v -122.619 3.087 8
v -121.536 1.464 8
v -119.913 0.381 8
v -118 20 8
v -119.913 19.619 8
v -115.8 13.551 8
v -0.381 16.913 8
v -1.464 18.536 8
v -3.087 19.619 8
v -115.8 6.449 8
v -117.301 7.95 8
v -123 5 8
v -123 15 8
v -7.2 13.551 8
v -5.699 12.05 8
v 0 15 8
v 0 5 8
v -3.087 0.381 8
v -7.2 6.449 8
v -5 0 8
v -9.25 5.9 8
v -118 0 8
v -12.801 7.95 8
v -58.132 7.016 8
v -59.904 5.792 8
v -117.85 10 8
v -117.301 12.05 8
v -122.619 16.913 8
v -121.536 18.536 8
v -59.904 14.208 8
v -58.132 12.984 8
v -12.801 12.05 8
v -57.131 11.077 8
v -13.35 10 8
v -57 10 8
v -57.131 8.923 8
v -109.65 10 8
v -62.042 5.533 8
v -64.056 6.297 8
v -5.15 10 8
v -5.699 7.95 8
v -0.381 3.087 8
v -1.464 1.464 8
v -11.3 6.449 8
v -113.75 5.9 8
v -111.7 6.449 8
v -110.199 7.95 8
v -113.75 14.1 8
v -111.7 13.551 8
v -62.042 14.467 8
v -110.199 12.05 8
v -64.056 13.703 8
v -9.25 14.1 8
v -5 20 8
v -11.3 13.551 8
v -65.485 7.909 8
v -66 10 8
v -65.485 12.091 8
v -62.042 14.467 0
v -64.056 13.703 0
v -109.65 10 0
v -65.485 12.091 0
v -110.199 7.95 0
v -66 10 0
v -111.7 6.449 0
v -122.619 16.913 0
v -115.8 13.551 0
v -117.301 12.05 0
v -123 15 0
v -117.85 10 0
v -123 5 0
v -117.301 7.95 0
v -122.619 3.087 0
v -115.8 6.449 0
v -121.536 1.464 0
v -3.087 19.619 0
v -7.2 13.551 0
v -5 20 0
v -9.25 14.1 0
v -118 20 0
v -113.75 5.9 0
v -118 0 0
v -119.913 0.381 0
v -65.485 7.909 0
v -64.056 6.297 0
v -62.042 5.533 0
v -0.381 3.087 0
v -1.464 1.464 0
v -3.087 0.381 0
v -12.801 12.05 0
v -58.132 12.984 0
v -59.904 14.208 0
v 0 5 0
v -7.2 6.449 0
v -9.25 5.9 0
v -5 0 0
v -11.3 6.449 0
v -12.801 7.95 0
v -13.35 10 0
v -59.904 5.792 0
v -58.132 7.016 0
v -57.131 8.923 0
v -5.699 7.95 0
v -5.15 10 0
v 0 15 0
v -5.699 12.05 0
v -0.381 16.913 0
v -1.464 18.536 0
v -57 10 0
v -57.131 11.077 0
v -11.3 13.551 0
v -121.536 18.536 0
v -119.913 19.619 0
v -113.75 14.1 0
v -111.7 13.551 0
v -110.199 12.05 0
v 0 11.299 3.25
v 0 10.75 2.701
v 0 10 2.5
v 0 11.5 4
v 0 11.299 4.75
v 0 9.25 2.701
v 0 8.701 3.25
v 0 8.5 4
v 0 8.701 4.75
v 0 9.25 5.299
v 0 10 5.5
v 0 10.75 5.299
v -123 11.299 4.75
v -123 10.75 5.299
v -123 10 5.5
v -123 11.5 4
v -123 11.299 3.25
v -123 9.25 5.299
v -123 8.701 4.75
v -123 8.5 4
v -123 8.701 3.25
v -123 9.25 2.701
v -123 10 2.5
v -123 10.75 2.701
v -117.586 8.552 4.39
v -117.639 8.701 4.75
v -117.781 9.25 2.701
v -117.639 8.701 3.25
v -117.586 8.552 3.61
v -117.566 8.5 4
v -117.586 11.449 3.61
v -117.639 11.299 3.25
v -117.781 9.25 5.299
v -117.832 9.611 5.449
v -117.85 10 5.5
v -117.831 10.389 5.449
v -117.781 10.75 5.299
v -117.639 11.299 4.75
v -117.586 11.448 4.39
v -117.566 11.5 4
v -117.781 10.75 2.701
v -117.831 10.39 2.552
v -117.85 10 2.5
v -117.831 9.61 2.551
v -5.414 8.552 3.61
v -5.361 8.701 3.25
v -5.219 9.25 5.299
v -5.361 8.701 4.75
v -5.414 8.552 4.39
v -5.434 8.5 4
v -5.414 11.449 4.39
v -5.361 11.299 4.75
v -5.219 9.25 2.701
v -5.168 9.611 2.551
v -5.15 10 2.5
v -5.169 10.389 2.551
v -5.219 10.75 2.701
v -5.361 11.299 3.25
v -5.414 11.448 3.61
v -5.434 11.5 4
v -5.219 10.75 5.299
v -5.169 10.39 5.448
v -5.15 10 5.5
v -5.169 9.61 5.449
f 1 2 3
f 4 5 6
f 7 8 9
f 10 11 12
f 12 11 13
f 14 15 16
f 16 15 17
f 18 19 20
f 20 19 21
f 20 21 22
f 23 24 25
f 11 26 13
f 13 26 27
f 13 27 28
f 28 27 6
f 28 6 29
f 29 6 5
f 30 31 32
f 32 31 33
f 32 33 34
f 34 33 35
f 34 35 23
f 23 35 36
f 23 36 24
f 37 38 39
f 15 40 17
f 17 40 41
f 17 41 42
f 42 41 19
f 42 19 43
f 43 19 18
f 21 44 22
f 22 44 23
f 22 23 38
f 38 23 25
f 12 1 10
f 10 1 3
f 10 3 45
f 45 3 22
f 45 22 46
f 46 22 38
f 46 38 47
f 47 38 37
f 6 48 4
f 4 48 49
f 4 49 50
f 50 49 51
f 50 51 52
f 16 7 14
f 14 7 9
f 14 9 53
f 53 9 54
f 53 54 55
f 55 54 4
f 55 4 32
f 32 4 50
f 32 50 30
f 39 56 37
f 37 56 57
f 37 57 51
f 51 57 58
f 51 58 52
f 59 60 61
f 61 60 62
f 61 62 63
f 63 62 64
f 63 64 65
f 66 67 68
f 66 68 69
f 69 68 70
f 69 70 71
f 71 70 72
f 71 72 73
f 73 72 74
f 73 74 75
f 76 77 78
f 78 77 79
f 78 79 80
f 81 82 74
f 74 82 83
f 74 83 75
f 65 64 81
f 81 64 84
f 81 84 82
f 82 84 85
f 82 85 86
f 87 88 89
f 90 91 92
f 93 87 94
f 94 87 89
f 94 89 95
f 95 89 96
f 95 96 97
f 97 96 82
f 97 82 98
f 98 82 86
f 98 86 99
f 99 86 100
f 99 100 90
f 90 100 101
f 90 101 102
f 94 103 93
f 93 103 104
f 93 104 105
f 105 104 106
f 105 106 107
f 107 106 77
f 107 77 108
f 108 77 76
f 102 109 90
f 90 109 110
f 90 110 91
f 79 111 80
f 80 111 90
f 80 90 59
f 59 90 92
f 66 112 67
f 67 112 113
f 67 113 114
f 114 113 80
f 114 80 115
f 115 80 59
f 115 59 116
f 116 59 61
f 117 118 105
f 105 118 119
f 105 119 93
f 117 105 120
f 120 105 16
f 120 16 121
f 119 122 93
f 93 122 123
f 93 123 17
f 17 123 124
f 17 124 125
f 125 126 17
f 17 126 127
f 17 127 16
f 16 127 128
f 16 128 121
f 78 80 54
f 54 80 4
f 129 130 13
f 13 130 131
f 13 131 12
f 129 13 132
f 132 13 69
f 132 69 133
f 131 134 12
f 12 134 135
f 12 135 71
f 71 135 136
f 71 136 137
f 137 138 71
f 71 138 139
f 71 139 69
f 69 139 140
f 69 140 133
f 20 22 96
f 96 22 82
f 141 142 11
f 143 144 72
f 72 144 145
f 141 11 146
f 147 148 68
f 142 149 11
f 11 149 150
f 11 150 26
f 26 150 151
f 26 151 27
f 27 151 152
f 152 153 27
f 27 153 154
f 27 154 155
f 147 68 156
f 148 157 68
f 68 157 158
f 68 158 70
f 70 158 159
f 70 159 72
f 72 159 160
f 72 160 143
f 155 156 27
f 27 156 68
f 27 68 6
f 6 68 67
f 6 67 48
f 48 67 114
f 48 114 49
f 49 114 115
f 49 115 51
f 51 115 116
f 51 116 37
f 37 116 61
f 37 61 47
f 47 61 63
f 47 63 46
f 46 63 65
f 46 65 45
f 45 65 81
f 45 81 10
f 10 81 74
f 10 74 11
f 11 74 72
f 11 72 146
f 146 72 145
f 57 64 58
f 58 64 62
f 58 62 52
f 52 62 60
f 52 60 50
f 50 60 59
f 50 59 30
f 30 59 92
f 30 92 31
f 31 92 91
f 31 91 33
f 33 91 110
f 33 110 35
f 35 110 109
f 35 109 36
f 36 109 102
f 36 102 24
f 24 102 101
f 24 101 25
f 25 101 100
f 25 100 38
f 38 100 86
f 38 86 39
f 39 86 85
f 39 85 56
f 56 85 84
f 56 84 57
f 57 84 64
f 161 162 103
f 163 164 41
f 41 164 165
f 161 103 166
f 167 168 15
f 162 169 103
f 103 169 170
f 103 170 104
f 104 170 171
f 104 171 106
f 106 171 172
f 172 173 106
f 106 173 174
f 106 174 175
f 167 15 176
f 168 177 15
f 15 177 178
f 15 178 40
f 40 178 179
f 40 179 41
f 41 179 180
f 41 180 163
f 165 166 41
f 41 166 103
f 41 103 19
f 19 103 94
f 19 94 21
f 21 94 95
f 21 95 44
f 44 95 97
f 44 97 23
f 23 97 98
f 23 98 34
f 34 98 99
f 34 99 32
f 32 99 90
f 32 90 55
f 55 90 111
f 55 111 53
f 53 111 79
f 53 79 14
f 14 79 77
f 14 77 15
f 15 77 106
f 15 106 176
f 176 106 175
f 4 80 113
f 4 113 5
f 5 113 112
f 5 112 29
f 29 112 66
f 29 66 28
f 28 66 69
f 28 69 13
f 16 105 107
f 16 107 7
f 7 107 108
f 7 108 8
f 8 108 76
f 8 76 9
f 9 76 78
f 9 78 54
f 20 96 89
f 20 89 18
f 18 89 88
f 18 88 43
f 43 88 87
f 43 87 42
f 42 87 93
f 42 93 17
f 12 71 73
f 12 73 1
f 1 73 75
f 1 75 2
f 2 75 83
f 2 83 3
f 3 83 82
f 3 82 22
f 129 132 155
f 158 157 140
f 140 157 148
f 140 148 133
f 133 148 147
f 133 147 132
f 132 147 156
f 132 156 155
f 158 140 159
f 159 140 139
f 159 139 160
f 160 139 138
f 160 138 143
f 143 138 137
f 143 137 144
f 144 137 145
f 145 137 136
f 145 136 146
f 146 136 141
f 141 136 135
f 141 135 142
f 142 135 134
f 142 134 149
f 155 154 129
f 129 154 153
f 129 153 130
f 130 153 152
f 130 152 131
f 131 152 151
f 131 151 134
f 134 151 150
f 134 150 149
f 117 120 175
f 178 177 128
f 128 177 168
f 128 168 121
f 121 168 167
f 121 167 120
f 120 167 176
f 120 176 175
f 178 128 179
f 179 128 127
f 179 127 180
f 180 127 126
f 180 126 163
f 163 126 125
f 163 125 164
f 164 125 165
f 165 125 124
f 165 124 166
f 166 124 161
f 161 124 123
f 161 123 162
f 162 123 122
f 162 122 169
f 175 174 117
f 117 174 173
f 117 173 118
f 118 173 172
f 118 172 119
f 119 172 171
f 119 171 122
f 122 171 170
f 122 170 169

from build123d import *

# Parameters (mm, degrees)
SKETCH1_W               = 123
SKETCH1_H               = 20
SKETCH1_R               = 4.1
SKETCH1_R_2             = 4.5
BOSS_EXTRUDE1_DEPTH     = 8
FILLET1_R               = 5
FILLET2_R               = 5
CUT_EXTRUDE1_REACH      = 126.872
CUT_EXTRUDE1_END_RADIUS = 4.1
SKETCH2_R               = 1.5
CUT_EXTRUDE2_REACH      = 126.872
CUT_EXTRUDE2_END_RADIUS = 4.1
SKETCH3_R               = 1.5


with BuildPart() as part:
    # Sketch1 → Boss-Extrude1 (new body)
    with BuildSketch(Plane.XY):
        with Locations((-61.5, 10)):
            Rectangle(SKETCH1_W, SKETCH1_H)
        with Locations((-113.75, 10)):
            Circle(SKETCH1_R, mode=Mode.SUBTRACT)
        with Locations((-61.5, 10)):
            Circle(SKETCH1_R_2, mode=Mode.SUBTRACT)
        with Locations((-9.25, 10)):
            Circle(SKETCH1_R, mode=Mode.SUBTRACT)
    extrude(amount=BOSS_EXTRUDE1_DEPTH)

    # Fillet1
    fillet1_edges = [part.edges().sort_by_distance(p)[0] for p in [
        (-123, 20, 4),
    ]]
    fillet(fillet1_edges, radius=FILLET1_R)

    # Fillet2
    fillet2_edges = [part.edges().sort_by_distance(p)[0] for p in [
        (0, 0, 4),
        (-123, 0, 4),
        (0, 20, 4),
    ]]
    fillet(fillet2_edges, radius=FILLET2_R)

    # Cut-Extrude1: up to this cylinder (the profile starts outside it)
    cut_extrude1_end = Plane(origin=(-113.75, 10, 4), z_dir=(0, 0, -1)) * Cylinder(CUT_EXTRUDE1_END_RADIUS, 262.944, mode=Mode.PRIVATE)
    # Sketch2 → Cut-Extrude1 (cut, up to the surface)
    with BuildSketch(Plane.ZY.offset(123), mode=Mode.PRIVATE) as cut_extrude1_sk1:
        with Locations((4, 10)):
            Circle(SKETCH2_R)
    cut_extrude1_tool1 = extrude(cut_extrude1_sk1.sketch, amount=-CUT_EXTRUDE1_REACH, mode=Mode.PRIVATE) - cut_extrude1_end
    add(cut_extrude1_tool1.solids().sort_by_distance((-123, 10, 4))[0], mode=Mode.SUBTRACT)

    # Cut-Extrude2: up to this cylinder (the profile starts outside it)
    cut_extrude2_end = Plane(origin=(-9.25, 10, 4), z_dir=(0, 0, -1)) * Cylinder(CUT_EXTRUDE2_END_RADIUS, 262.944, mode=Mode.PRIVATE)
    # Sketch3 → Cut-Extrude2 (cut, up to the surface)
    with BuildSketch(Plane(origin=(0, 0, 0), x_dir=(0, 0, -1), z_dir=(1, 0, 0)), mode=Mode.PRIVATE) as cut_extrude2_sk1:
        with Locations(Location((-4, 10, 0), (0, 0, 180))):
            Circle(SKETCH3_R)
    cut_extrude2_tool1 = extrude(cut_extrude2_sk1.sketch, amount=-CUT_EXTRUDE2_REACH, mode=Mode.PRIVATE) - cut_extrude2_end
    add(cut_extrude2_tool1.solids().sort_by_distance((0, 10, 4))[0], mode=Mode.SUBTRACT)


solid = part.part
